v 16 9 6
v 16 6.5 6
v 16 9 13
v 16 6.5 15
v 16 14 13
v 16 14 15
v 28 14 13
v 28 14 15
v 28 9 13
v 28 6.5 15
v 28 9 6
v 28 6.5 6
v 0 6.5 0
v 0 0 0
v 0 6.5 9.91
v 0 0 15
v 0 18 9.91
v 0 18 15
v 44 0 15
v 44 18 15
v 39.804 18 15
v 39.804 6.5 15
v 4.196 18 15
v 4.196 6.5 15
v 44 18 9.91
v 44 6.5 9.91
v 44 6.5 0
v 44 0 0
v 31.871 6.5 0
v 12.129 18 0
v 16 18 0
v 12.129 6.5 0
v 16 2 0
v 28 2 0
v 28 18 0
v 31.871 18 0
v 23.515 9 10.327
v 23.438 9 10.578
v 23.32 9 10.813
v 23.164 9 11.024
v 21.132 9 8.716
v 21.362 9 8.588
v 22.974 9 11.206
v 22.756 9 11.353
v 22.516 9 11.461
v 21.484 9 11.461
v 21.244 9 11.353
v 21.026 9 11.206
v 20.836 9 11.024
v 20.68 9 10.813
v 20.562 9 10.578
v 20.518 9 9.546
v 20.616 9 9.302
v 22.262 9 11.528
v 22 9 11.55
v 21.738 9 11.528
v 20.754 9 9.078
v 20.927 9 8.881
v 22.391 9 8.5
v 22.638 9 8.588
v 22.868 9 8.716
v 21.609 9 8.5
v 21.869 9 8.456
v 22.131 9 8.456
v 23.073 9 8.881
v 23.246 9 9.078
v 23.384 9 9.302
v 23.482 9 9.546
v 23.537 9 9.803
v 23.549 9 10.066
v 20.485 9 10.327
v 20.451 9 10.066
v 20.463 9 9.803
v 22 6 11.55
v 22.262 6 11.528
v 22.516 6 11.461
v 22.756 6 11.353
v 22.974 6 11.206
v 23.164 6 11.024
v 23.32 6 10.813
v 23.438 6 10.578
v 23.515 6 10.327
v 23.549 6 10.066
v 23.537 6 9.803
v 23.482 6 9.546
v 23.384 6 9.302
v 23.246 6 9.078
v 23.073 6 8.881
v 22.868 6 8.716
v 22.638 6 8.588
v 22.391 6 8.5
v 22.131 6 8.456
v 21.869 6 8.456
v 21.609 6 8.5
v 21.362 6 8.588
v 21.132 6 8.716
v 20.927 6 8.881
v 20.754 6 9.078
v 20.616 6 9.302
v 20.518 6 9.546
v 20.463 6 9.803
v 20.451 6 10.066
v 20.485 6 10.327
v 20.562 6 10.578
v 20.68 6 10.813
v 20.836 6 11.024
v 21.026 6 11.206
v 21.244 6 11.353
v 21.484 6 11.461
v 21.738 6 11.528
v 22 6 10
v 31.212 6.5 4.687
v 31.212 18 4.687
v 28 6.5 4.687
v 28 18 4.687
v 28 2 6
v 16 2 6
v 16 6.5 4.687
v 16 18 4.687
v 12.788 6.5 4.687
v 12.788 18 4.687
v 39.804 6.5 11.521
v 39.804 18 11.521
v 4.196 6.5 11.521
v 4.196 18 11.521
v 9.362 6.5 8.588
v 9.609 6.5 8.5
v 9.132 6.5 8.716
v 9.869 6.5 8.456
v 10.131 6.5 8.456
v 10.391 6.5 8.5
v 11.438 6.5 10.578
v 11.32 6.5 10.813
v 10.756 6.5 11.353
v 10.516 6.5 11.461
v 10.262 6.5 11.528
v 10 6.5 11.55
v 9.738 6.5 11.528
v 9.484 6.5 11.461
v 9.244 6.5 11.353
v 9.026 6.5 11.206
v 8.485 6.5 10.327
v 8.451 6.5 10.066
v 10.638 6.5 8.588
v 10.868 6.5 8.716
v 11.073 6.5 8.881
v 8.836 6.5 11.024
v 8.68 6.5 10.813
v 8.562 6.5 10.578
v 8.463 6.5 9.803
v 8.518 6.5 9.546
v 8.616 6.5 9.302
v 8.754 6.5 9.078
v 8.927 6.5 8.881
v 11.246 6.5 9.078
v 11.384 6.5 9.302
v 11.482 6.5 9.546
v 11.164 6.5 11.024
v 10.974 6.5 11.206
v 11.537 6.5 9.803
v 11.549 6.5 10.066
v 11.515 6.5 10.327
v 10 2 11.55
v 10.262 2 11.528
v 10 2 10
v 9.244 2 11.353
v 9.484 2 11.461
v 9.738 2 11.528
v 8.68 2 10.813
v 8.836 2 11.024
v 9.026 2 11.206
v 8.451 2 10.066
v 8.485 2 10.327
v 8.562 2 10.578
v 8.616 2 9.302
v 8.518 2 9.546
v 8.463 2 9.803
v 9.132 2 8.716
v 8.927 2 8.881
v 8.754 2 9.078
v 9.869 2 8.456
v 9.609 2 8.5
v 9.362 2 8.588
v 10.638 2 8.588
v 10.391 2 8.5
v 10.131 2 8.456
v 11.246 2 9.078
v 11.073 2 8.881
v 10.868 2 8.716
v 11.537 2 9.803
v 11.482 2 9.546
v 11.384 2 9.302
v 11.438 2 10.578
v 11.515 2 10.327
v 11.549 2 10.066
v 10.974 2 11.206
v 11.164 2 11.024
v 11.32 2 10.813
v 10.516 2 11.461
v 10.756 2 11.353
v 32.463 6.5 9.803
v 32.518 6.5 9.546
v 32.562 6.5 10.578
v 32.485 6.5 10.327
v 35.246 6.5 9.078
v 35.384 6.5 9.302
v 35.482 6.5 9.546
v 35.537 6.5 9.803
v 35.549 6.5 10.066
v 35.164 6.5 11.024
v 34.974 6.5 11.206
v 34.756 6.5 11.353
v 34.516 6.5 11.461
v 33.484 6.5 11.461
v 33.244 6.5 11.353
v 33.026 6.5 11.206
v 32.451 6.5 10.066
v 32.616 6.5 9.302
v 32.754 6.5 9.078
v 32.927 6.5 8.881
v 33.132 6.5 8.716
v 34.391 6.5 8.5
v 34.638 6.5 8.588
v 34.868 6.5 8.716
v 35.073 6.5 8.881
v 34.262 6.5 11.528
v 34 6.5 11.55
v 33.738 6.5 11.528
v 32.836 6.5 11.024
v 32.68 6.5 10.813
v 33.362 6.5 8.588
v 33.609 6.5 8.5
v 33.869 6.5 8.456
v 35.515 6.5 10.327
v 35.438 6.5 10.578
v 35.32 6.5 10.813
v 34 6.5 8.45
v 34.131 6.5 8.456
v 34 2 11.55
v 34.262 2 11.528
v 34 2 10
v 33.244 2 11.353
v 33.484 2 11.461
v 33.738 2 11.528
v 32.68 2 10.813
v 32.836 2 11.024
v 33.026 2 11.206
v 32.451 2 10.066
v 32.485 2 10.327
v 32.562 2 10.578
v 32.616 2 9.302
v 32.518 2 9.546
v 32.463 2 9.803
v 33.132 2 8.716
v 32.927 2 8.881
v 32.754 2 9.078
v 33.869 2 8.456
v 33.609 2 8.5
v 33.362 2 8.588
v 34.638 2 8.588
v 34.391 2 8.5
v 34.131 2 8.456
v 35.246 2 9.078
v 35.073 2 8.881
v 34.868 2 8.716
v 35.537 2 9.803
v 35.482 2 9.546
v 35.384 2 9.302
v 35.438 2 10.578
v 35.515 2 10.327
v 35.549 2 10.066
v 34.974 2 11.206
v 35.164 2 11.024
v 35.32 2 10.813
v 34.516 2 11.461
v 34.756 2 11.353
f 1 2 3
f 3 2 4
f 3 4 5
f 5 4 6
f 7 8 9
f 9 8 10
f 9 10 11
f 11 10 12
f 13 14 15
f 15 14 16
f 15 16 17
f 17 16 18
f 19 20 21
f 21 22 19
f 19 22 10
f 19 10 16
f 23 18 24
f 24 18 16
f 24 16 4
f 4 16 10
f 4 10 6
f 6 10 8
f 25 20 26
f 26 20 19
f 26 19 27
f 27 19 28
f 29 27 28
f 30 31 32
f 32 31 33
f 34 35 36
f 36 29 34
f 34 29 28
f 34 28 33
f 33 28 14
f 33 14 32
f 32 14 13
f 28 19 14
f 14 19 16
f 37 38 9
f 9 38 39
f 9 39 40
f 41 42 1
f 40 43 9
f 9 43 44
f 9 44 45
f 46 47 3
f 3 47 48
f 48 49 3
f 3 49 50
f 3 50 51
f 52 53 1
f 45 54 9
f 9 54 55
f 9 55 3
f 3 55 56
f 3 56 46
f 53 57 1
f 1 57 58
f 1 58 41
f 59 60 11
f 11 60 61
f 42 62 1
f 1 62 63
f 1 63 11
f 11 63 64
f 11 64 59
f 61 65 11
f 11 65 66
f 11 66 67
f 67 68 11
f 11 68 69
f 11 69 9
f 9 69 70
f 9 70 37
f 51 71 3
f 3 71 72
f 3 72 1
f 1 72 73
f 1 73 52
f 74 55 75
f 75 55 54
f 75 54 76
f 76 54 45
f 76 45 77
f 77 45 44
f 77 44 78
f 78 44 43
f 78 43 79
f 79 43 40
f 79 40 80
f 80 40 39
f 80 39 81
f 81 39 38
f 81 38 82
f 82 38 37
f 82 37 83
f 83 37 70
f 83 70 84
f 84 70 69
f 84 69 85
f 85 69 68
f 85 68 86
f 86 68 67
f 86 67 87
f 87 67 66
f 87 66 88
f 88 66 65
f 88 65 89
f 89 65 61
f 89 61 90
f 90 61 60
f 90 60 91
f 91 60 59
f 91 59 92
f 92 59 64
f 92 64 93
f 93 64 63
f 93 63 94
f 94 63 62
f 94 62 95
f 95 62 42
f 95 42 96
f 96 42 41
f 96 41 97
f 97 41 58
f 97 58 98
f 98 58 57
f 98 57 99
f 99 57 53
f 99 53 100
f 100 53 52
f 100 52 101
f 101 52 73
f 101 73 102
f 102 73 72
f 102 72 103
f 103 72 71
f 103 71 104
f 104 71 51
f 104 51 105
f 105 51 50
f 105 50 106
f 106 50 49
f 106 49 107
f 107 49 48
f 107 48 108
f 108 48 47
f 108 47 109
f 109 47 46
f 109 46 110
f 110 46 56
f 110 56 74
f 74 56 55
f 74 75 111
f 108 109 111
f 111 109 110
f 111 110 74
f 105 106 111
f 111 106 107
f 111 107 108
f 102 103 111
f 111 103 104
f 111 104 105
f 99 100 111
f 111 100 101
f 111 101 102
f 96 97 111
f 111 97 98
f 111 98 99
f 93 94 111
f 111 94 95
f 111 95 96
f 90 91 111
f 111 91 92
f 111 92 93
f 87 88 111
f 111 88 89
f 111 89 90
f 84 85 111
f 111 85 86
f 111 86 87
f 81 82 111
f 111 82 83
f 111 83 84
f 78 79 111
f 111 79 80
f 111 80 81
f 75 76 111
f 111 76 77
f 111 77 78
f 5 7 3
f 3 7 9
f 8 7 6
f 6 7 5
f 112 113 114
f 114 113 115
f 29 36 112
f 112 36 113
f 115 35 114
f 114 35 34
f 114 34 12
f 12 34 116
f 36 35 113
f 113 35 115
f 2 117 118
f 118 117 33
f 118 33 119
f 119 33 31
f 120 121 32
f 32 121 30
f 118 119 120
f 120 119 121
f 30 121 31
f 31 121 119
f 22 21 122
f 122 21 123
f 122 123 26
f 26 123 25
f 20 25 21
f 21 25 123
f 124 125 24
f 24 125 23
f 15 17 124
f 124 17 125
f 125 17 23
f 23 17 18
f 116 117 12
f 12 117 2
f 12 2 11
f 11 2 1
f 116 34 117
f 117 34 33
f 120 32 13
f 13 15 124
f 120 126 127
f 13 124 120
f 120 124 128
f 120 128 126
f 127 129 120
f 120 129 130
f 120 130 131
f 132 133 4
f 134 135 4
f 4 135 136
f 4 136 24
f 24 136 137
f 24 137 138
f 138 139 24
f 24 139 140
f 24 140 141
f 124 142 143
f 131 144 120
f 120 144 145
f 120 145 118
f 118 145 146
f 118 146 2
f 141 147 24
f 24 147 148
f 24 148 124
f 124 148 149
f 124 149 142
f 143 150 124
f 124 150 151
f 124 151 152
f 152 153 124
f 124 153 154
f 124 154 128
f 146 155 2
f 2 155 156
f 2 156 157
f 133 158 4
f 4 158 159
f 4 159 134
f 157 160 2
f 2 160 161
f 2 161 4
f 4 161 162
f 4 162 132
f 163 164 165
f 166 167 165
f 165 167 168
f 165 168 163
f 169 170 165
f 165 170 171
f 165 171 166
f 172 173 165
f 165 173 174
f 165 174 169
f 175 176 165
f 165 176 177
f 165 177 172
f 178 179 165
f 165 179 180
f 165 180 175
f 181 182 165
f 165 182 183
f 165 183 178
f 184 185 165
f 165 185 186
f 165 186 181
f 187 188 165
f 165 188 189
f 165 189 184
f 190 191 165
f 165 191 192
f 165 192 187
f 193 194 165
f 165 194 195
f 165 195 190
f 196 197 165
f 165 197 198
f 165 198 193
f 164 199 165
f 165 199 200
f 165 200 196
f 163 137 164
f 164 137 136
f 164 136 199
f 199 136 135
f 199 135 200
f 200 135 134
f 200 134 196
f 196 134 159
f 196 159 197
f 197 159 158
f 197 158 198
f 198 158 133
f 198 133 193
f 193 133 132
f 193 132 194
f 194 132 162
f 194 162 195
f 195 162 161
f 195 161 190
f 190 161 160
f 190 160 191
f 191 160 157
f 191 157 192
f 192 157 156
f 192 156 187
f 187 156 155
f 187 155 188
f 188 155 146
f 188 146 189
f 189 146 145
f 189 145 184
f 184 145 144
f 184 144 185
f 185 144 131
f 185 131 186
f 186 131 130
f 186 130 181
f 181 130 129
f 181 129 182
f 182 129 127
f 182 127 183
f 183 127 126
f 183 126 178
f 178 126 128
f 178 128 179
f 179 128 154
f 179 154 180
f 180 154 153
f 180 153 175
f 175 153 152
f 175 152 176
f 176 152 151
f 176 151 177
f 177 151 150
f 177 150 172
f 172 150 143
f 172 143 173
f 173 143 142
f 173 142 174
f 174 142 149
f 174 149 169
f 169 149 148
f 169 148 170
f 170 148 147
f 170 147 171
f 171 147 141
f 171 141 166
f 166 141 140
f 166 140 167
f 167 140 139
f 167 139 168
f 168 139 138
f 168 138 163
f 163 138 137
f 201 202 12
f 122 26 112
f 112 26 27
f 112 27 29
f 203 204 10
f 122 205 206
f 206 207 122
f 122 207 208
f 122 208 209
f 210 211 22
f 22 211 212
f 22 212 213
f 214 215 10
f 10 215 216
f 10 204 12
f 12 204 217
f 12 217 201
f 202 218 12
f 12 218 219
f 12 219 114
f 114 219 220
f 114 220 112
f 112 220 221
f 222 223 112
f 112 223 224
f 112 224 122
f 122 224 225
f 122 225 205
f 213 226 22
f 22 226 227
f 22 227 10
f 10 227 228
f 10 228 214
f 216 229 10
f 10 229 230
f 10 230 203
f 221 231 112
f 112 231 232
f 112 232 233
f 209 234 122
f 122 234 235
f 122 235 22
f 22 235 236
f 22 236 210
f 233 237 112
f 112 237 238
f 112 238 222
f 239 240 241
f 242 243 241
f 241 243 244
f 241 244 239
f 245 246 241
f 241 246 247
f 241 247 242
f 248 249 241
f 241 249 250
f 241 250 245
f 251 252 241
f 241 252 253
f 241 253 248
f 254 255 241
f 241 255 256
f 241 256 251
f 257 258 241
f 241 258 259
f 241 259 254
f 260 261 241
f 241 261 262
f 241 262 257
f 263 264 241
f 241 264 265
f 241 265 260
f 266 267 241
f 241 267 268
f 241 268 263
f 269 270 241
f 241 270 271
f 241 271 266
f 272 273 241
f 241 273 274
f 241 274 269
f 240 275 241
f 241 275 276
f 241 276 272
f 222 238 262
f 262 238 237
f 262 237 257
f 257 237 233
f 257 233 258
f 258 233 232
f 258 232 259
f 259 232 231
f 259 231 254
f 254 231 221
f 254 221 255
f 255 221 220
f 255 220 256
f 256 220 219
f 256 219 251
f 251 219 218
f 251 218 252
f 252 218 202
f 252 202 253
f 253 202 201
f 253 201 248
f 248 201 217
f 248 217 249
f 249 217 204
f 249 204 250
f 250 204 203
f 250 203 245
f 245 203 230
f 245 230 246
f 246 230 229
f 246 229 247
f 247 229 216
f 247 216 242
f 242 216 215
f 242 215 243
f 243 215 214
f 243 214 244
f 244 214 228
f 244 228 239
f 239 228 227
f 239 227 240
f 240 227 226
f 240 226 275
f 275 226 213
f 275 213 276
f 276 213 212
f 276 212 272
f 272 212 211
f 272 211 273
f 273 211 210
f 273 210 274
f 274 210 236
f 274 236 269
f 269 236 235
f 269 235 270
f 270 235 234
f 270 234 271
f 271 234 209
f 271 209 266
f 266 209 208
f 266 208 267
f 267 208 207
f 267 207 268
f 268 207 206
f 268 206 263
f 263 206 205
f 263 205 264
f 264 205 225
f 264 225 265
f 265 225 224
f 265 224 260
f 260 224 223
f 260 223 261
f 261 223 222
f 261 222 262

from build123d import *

# Parameters (mm, degrees)
SKETCH1_W           = 44
SKETCH1_H           = 15
BOSS_EXTRUDE1_DEPTH = 5
SKETCH2_W           = 12
SKETCH2_H           = 15
BOSS_EXTRUDE2_DEPTH = 4
SKETCH3_R           = 1.55
CUT_EXTRUDE1_DEPTH  = 3
SKETCH4_R           = 1.55
CUT_EXTRUDE2_DEPTH  = 3
SKETCH6_W           = 12
SKETCH6_H           = 2
BOSS_EXTRUDE4_DEPTH = 5
BOSS_EXTRUDE5_DEPTH = 13
SKETCH10_W          = 12
SKETCH10_H          = 6
CUT_EXTRUDE4_DEPTH  = 7
SKETCH11_R          = 1.55
BOSS_EXTRUDE6_DEPTH = 1.5


with BuildPart() as part:
    # Sketch1 → Boss-Extrude1 (new body)
    with BuildSketch(Plane(origin=(0, 0, 0), x_dir=(1, 0, 0), z_dir=(0, 1, 0))):
        with Locations((22, -7.5)):
            Rectangle(SKETCH1_W, SKETCH1_H)
    extrude(amount=BOSS_EXTRUDE1_DEPTH)

    # Sketch2 → Boss-Extrude2 (add)
    with BuildSketch(Plane(origin=(0, 5, 0), x_dir=(1, 0, 0), z_dir=(0, 1, 0))):
        with Locations((22, -7.5)):
            Rectangle(SKETCH2_W, SKETCH2_H)
    extrude(amount=BOSS_EXTRUDE2_DEPTH)

    # Sketch3 → Cut-Extrude1 (cut)
    with BuildSketch(Plane(origin=(0, 5, 0), x_dir=(1, 0, 0), z_dir=(0, 1, 0))):
        with Locations((10, -10)):
            Circle(SKETCH3_R)
        with Locations((34, -10)):
            Circle(SKETCH3_R)
    extrude(amount=-CUT_EXTRUDE1_DEPTH, mode=Mode.SUBTRACT)

    # Sketch4 → Cut-Extrude2 (cut)
    with BuildSketch(Plane(origin=(0, 9, 0), x_dir=(1, 0, 0), z_dir=(0, 1, 0))):
        with Locations((22, -10)):
            Circle(SKETCH4_R)
    extrude(amount=-CUT_EXTRUDE2_DEPTH, mode=Mode.SUBTRACT)

    # Sketch6 → Boss-Extrude4 (add)
    with BuildSketch(Plane(origin=(0, 9, 0), x_dir=(1, 0, 0), z_dir=(0, 1, 0))):
        with Locations((22, -14)):
            Rectangle(SKETCH6_W, SKETCH6_H)
    extrude(amount=BOSS_EXTRUDE4_DEPTH)

    # Sketch8 → Boss-Extrude5 (add)
    with BuildSketch(Plane(origin=(0, 5, 0), x_dir=(1, 0, 0), z_dir=(0, 1, 0))):
        Polygon((31.212307556, -4.686924541), (31.871011843, 0), (28, 0), (28, -4.686924541), align=None)
        Polygon((39.803996034, -11.521062141), (44, -9.910367127), (44, -15), (39.803996034, -15), align=None)
        Polygon((12.787692444, -4.686924541), (12.128988157, 0), (16, 0), (16, -4.686924541), align=None)
        Polygon((4.196003966, -11.521062141), (0, -9.910367127), (0, -15), (4.196003966, -15), align=None)
    extrude(amount=BOSS_EXTRUDE5_DEPTH)

    # Sketch10 → Cut-Extrude4 (cut)
    with BuildSketch(Plane(origin=(0, 9, 0), x_dir=(1, 0, 0), z_dir=(0, 1, 0))):
        with Locations((22, -3)):
            Rectangle(SKETCH10_W, SKETCH10_H)
    extrude(amount=-CUT_EXTRUDE4_DEPTH, mode=Mode.SUBTRACT)

    # Sketch11 → Boss-Extrude6 (add)
    with BuildSketch(Plane(origin=(0, 5, 0), x_dir=(1, 0, 0), z_dir=(0, 1, 0))):
        Polygon((16, -15), (16, -4.686924541), (12.787692444, -4.686924541), (12.128988157, 0), (0, 0), (0, -9.910367127), (4.196003966, -11.521062141), (4.196003966, -15), align=None)
        with Locations((10, -10)):
            Circle(SKETCH11_R, mode=Mode.SUBTRACT)
        Polygon((39.803996034, -11.521062141), (39.803996034, -15), (28, -15), (28, -4.686924541), (31.212307556, -4.686924541), (31.871011843, 0), (44, 0), (44, -9.910367127), align=None)
        with Locations((34, -10)):
            Circle(SKETCH11_R, mode=Mode.SUBTRACT)
    extrude(amount=BOSS_EXTRUDE6_DEPTH)


solid = part.part
